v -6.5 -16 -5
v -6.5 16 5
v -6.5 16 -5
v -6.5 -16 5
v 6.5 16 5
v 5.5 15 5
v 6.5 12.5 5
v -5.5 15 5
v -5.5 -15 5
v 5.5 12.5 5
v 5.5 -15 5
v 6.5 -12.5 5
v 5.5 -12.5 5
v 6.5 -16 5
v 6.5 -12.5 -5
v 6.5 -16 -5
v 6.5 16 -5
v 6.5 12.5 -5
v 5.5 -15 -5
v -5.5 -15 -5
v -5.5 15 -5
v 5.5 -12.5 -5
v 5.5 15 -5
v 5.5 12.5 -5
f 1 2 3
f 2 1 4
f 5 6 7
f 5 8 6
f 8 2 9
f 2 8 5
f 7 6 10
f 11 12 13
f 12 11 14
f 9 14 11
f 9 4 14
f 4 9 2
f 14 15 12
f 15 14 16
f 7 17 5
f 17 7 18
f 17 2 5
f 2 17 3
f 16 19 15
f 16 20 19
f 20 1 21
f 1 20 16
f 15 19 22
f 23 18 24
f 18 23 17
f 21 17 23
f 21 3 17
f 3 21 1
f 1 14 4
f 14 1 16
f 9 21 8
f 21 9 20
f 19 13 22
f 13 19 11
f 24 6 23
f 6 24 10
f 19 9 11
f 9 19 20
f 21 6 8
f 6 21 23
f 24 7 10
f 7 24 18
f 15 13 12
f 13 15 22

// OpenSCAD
// size of aluminium profile
width = 30;

// height of cable
cable_height = 1;

// holder width
holder_width = 10;

// border
border = 2;

difference () {
    cube([(width / 3) + cable_height + border, width + border, holder_width], center = true);
    cube([(width / 3) + cable_height, width, holder_width], center = true);
    translate ([(width / 6) + border / 2, 0, 0]) {
        cube([border, width - 5, holder_width], center = true);
    }    

}
